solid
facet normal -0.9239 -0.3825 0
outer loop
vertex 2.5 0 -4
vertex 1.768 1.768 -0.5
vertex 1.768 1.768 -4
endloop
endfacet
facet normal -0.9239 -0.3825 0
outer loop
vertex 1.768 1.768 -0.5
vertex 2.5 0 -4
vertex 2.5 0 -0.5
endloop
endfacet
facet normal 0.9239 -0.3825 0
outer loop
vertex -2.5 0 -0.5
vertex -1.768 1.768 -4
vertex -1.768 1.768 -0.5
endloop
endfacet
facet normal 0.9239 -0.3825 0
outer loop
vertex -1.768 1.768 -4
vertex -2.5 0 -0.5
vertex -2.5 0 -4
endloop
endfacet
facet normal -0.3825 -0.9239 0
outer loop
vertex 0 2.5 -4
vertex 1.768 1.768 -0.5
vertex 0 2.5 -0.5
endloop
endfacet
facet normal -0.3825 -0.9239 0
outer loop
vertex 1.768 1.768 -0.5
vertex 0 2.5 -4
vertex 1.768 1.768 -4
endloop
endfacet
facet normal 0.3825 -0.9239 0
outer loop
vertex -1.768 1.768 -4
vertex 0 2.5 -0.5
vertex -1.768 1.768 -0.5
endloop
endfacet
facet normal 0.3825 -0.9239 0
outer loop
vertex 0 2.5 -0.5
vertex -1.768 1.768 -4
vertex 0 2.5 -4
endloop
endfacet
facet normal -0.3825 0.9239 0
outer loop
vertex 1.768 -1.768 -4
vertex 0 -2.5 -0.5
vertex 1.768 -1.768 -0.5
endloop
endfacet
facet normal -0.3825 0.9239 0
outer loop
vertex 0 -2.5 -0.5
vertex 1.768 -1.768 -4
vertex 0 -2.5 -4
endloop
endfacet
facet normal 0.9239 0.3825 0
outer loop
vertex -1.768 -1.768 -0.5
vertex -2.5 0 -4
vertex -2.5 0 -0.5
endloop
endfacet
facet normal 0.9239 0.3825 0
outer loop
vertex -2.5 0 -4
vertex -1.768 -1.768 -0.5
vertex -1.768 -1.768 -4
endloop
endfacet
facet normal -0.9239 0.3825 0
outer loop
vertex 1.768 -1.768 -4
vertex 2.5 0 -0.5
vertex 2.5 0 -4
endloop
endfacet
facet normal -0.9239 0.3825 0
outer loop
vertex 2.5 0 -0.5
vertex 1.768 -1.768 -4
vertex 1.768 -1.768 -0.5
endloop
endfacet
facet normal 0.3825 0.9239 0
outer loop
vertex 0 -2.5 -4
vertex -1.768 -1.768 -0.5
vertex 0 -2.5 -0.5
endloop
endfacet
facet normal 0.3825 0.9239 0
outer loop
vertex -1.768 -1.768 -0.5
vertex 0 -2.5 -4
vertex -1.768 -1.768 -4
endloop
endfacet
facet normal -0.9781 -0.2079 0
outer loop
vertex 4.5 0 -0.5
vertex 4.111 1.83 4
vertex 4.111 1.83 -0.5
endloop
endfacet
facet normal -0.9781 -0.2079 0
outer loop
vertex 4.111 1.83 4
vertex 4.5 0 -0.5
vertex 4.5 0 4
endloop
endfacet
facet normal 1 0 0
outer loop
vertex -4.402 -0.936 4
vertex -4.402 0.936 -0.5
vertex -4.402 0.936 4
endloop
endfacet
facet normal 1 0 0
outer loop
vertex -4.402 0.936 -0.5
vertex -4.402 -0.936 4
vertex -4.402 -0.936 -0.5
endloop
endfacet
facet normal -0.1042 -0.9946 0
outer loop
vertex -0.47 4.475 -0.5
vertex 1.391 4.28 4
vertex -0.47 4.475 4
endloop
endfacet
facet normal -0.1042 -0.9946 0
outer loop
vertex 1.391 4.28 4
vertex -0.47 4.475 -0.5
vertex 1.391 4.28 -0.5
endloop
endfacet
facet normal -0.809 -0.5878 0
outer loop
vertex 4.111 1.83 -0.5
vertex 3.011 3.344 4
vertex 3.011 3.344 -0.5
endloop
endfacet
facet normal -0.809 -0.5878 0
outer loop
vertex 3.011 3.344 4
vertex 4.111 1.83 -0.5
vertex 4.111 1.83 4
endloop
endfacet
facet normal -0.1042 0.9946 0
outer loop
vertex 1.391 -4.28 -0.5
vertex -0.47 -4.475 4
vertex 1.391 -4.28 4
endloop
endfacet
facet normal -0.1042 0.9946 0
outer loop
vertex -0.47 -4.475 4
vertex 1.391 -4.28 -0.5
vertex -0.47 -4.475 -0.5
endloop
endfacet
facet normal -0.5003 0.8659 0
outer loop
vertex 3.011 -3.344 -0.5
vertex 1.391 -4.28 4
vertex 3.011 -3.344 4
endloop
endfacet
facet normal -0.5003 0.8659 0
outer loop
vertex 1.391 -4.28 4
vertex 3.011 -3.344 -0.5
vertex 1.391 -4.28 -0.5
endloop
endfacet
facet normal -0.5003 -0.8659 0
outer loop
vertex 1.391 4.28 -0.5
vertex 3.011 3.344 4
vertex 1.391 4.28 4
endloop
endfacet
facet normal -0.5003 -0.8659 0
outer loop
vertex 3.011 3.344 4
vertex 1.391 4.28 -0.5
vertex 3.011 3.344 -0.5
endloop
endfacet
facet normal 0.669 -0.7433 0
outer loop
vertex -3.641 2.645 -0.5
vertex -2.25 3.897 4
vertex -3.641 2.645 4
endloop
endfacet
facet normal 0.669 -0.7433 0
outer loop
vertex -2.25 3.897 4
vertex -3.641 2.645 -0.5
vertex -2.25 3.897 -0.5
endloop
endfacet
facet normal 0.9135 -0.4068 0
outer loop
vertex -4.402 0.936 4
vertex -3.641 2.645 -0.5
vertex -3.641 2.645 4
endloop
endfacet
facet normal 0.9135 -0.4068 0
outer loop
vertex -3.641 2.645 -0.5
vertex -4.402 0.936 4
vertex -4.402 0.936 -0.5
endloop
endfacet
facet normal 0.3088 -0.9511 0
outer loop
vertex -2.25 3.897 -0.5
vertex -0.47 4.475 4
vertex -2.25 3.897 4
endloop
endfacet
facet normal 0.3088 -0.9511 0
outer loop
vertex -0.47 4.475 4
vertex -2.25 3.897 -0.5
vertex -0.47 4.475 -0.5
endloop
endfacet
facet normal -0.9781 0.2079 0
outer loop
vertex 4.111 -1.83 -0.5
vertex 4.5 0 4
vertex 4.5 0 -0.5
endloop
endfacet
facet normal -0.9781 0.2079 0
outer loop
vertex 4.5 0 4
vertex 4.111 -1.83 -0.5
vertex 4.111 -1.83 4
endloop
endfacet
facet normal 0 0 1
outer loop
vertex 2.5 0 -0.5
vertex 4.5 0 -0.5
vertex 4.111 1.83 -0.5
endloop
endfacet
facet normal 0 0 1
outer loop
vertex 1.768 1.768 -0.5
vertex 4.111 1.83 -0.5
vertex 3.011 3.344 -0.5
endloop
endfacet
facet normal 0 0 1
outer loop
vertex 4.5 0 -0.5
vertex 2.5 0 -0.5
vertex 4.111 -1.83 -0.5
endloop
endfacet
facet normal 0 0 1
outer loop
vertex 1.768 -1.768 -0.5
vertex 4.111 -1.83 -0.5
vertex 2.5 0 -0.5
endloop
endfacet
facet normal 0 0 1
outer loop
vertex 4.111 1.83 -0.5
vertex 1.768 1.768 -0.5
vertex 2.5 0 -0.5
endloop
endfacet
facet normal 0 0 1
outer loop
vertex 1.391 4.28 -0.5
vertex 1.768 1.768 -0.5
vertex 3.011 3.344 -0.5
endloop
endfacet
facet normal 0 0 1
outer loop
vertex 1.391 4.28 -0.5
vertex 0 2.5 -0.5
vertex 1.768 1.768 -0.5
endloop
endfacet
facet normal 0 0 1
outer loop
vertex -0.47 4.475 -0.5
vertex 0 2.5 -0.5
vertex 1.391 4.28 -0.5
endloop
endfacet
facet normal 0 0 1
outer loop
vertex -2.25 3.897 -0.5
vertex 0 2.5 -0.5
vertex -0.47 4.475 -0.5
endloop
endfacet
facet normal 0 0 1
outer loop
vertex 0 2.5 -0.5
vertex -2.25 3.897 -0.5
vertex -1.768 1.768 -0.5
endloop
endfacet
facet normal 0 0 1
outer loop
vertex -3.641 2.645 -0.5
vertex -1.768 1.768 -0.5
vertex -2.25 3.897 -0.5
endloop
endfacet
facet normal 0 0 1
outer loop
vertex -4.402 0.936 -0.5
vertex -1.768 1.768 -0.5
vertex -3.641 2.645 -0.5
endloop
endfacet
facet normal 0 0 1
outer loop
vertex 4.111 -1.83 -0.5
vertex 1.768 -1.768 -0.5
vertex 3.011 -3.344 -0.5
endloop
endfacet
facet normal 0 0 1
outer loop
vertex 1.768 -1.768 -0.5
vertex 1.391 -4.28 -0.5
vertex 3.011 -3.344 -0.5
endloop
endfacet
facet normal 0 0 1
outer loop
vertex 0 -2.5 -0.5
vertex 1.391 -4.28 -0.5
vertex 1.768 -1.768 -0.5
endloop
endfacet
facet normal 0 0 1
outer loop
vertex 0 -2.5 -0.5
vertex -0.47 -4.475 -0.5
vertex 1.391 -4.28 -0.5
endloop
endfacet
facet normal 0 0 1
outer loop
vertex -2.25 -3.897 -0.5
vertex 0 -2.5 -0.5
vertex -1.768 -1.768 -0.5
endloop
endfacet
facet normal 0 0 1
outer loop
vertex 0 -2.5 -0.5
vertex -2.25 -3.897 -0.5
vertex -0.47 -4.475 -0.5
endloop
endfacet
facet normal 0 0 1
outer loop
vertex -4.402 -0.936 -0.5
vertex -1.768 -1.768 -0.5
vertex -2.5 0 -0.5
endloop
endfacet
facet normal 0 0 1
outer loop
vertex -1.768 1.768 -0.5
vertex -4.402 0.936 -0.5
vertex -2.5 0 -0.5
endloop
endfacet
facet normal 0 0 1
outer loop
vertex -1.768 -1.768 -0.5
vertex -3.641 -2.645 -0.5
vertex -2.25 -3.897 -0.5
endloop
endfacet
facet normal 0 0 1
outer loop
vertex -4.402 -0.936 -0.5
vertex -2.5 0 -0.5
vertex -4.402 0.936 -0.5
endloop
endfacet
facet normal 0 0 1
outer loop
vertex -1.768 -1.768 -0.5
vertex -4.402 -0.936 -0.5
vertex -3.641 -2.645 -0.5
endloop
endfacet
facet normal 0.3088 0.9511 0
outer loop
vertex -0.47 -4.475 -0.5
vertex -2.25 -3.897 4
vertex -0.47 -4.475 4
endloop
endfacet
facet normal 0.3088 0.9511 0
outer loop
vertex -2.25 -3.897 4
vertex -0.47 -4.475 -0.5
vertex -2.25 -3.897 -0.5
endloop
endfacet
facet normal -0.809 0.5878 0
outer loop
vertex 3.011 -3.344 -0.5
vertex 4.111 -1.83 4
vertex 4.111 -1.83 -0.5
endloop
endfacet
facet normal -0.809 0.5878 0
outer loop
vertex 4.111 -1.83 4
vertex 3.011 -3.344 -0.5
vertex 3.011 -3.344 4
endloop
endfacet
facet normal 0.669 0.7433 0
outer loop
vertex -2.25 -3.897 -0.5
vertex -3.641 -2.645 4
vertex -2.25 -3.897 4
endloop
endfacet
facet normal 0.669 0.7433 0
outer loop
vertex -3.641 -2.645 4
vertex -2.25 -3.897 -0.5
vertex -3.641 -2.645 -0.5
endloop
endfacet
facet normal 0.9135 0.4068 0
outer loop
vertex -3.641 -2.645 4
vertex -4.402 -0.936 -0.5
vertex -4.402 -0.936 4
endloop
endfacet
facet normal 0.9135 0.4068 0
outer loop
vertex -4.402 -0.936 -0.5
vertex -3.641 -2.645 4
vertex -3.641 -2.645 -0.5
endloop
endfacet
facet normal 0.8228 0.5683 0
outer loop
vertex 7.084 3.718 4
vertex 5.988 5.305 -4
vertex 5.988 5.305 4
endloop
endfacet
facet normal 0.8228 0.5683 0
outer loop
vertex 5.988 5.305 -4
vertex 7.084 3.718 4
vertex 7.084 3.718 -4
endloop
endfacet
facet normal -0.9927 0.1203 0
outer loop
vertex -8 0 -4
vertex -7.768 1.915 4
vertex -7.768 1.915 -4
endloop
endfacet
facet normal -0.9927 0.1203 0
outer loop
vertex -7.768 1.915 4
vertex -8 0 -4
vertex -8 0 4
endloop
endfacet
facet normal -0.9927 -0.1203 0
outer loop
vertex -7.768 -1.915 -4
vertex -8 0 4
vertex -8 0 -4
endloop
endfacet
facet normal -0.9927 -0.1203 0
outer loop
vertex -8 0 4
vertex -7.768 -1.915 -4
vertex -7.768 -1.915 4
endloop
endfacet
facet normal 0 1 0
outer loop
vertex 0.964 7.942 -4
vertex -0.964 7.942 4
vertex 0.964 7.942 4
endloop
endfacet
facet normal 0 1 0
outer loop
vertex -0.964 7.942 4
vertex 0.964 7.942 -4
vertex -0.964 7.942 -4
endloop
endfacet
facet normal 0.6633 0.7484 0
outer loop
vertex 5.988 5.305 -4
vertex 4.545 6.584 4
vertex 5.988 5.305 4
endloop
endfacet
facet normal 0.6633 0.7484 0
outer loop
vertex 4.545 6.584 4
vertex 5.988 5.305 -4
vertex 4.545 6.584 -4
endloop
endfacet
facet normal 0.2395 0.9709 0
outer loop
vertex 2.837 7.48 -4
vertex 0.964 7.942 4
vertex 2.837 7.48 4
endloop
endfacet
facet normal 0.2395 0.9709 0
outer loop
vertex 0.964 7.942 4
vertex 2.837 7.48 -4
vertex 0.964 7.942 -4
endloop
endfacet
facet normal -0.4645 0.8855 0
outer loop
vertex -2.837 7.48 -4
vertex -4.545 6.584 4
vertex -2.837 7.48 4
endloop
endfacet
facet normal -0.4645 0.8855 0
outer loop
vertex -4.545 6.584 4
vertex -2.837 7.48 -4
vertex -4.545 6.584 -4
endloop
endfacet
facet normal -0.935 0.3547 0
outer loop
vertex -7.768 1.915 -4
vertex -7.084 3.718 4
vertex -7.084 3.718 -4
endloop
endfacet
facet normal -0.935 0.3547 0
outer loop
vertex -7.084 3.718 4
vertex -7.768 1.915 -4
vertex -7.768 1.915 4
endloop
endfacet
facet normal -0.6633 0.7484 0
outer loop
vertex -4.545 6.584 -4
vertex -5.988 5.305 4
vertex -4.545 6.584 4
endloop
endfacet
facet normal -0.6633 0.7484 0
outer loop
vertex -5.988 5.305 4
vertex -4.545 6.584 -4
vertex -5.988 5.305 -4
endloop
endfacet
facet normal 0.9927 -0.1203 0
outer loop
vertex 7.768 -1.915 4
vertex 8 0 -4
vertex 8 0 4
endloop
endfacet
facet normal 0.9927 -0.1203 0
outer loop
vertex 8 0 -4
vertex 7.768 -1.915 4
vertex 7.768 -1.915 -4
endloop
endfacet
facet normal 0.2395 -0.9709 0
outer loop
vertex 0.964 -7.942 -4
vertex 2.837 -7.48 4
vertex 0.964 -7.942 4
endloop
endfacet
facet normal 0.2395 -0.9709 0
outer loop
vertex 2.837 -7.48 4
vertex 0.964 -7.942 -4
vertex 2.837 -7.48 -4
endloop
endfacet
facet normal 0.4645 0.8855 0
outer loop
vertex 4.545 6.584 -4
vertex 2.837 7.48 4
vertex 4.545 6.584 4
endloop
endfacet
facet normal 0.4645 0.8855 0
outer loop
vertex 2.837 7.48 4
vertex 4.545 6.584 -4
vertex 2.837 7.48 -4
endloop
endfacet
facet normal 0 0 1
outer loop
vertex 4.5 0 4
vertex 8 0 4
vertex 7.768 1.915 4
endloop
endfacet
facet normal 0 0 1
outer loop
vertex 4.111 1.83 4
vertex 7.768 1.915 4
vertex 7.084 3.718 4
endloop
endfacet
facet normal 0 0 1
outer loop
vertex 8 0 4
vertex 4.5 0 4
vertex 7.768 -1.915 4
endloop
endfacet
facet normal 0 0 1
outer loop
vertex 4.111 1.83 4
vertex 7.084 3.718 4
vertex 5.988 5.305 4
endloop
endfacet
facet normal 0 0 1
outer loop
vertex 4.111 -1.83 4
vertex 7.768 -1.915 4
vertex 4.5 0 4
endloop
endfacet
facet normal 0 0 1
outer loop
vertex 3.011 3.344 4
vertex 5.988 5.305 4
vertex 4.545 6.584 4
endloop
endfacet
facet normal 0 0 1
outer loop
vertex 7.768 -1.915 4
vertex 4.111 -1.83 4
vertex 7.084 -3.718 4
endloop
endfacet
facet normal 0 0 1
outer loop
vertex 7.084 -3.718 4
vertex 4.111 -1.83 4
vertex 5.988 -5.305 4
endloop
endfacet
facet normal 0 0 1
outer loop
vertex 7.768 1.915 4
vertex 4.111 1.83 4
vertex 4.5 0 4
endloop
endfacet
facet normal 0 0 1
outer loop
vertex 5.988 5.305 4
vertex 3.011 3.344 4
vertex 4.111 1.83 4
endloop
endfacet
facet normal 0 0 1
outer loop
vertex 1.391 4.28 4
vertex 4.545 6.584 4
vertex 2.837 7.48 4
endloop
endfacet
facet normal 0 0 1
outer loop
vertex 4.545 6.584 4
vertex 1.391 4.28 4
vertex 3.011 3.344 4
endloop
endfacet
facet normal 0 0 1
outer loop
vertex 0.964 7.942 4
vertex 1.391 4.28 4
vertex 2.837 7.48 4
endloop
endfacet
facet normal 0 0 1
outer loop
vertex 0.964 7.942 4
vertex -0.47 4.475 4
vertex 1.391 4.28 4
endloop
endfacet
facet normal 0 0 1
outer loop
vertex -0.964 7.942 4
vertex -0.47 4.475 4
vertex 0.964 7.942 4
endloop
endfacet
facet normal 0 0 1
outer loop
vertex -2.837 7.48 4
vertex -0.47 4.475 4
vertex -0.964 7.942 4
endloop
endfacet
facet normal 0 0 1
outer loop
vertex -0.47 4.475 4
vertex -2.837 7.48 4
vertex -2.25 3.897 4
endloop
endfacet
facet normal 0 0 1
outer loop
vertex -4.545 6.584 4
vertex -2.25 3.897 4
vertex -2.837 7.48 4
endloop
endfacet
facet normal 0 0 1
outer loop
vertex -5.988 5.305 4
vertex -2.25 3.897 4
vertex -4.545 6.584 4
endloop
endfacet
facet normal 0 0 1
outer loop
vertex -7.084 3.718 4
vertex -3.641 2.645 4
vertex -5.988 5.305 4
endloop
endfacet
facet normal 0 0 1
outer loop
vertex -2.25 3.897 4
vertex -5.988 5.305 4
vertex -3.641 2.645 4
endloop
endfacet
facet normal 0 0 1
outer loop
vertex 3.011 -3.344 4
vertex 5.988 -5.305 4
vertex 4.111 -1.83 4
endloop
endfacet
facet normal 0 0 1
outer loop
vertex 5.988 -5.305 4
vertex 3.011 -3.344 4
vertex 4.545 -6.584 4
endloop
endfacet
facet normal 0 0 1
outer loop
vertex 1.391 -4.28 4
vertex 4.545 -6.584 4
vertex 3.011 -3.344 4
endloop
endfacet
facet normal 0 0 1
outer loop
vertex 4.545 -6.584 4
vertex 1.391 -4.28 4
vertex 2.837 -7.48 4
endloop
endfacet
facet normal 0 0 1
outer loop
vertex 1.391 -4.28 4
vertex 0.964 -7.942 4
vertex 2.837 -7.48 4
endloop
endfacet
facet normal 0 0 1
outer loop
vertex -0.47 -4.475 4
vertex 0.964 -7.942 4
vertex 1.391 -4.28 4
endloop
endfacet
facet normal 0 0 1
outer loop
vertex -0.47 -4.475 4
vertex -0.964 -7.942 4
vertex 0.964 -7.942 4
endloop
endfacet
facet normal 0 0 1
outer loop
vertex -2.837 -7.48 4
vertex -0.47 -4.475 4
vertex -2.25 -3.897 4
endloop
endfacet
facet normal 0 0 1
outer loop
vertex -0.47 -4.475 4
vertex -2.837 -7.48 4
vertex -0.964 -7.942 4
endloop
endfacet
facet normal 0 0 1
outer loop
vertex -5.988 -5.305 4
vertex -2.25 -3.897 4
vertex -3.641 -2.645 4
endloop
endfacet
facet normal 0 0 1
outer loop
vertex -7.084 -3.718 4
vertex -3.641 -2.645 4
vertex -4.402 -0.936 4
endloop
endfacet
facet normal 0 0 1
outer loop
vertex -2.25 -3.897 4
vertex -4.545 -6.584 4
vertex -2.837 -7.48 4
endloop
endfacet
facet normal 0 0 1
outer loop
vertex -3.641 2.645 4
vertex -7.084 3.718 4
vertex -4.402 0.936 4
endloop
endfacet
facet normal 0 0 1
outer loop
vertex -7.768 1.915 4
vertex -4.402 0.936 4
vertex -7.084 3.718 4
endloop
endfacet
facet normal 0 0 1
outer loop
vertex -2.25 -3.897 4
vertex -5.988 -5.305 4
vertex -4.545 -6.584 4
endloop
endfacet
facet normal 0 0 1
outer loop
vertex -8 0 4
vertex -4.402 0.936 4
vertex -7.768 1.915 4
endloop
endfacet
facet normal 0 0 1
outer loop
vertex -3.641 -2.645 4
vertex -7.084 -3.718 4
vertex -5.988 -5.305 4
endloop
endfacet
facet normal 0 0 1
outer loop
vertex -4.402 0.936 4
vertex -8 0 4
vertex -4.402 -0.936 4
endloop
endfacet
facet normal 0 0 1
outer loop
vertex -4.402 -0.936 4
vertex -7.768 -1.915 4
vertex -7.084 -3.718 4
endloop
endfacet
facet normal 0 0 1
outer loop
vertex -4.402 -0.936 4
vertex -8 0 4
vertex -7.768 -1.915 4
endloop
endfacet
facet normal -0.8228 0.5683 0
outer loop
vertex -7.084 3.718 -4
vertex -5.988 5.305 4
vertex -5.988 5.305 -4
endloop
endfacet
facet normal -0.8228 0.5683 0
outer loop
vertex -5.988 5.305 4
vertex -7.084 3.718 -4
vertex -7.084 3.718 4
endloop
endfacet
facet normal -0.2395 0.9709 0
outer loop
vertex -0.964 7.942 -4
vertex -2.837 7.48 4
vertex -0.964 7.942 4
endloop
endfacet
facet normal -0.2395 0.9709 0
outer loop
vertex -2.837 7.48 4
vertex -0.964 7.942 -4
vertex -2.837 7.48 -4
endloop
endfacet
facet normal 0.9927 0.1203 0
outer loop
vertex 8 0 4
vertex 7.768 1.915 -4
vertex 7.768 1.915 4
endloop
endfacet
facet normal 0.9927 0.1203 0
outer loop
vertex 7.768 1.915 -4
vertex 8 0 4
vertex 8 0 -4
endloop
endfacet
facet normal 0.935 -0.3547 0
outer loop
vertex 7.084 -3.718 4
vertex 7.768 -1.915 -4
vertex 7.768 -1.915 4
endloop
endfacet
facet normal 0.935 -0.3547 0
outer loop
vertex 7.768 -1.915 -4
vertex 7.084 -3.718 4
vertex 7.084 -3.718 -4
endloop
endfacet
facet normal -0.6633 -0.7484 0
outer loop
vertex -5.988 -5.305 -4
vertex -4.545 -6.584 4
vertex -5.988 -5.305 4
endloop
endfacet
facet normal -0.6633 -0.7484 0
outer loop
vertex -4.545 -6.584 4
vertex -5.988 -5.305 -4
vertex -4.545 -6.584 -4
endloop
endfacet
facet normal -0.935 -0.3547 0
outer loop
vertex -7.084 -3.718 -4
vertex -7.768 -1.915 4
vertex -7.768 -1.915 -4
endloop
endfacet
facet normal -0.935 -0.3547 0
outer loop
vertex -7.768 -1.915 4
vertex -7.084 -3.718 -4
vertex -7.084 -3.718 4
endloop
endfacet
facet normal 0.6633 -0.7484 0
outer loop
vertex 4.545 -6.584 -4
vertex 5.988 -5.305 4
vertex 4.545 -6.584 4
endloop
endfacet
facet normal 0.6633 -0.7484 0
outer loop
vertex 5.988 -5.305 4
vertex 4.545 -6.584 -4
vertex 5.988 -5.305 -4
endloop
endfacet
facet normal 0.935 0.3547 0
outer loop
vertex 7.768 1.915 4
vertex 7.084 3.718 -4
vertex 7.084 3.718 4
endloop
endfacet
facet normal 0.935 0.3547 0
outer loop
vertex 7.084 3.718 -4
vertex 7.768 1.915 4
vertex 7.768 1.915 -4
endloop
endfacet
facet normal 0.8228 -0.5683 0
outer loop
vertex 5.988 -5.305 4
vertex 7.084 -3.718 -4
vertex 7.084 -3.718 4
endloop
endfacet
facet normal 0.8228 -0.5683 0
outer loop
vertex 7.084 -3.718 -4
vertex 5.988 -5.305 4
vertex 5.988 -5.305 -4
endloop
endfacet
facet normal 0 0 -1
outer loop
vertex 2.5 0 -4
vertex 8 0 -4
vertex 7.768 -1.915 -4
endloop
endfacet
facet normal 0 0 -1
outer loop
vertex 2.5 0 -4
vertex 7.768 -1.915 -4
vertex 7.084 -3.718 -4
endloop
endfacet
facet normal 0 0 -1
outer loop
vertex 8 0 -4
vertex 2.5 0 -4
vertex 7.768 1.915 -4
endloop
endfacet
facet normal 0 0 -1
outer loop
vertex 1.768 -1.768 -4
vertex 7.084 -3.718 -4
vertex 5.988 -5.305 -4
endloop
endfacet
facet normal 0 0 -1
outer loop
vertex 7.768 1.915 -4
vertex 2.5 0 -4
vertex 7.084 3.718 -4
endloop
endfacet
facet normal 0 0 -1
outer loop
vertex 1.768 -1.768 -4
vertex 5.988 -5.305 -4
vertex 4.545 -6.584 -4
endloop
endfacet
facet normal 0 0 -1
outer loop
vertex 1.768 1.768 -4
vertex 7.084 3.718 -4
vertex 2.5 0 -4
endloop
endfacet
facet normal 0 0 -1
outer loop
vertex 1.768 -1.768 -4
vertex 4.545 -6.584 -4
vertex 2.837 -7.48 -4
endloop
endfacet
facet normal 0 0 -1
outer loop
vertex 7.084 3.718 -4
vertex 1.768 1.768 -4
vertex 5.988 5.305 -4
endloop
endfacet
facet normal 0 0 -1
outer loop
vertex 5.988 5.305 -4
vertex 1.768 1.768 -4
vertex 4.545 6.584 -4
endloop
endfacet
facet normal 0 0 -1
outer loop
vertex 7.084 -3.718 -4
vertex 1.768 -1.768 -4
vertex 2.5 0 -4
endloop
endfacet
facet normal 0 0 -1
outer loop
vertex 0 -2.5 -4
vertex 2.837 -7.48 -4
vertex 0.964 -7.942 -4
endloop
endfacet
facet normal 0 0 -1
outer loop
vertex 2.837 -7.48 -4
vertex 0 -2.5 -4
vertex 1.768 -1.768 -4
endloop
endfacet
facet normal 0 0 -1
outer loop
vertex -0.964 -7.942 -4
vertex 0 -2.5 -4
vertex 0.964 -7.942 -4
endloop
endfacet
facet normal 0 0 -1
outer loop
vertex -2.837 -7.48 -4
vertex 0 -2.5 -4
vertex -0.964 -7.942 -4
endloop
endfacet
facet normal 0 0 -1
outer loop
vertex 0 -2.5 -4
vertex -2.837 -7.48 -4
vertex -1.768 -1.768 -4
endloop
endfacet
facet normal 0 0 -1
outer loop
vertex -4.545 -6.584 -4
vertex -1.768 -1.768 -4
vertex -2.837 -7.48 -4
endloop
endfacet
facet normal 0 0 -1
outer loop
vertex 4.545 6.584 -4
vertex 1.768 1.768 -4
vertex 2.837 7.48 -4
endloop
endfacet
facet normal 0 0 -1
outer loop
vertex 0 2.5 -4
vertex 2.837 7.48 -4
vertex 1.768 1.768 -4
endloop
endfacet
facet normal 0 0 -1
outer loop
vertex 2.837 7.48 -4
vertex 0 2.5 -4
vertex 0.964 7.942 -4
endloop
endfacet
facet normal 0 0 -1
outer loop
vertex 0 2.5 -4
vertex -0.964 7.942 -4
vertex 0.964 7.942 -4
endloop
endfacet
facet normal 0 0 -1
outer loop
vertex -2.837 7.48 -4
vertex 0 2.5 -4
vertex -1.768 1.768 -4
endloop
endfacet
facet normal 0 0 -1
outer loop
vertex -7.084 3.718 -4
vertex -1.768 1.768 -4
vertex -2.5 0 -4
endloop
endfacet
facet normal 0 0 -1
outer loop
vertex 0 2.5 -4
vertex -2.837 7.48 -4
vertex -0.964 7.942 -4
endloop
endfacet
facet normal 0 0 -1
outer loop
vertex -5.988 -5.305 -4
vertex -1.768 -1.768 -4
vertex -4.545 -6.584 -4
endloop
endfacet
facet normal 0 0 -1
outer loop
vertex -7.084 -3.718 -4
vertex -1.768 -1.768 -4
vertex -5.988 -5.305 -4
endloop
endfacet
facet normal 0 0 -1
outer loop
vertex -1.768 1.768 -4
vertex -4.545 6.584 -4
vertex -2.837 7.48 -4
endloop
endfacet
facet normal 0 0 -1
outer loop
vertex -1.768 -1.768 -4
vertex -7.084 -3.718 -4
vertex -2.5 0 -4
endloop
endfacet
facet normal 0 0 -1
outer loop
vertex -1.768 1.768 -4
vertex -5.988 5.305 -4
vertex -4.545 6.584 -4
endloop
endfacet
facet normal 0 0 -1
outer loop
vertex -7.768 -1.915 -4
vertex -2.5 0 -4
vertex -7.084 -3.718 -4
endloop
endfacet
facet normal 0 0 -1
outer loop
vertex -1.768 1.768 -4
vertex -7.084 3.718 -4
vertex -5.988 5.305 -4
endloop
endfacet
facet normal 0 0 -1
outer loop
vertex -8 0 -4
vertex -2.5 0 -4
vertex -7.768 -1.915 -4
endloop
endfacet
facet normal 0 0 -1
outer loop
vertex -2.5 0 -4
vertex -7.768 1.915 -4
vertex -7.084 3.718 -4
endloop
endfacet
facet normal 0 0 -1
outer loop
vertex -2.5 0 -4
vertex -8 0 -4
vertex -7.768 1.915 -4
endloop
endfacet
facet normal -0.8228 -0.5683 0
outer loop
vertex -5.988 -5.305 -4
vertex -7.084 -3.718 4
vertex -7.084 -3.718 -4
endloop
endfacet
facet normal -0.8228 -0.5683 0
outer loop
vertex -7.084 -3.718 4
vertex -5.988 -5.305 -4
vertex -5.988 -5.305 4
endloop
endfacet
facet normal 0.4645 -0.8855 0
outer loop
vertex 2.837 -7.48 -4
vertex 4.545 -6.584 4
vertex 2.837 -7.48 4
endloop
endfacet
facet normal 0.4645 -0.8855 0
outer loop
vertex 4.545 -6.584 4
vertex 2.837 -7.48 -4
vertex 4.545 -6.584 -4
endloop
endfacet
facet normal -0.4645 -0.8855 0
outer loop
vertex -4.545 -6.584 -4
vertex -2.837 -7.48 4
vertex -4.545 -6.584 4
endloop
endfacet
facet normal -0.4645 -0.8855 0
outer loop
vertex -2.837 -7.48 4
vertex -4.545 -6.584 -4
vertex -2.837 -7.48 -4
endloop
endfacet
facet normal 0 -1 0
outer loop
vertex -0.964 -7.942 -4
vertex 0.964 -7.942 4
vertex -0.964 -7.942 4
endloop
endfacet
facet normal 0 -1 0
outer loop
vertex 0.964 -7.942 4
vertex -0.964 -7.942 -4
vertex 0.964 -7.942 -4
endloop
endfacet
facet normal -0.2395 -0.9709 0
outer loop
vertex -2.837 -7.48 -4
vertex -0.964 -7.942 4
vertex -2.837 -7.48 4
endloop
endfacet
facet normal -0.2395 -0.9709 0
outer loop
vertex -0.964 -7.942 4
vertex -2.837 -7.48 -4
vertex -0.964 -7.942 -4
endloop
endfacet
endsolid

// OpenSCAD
difference()
{
  cylinder(d=16,h=8,center=true);
  union()
  {
    cylinder(d=5,h=20,center=true);
    translate([0,0,3])
      cylinder(d=9,h=7,center=true);
  }
}
